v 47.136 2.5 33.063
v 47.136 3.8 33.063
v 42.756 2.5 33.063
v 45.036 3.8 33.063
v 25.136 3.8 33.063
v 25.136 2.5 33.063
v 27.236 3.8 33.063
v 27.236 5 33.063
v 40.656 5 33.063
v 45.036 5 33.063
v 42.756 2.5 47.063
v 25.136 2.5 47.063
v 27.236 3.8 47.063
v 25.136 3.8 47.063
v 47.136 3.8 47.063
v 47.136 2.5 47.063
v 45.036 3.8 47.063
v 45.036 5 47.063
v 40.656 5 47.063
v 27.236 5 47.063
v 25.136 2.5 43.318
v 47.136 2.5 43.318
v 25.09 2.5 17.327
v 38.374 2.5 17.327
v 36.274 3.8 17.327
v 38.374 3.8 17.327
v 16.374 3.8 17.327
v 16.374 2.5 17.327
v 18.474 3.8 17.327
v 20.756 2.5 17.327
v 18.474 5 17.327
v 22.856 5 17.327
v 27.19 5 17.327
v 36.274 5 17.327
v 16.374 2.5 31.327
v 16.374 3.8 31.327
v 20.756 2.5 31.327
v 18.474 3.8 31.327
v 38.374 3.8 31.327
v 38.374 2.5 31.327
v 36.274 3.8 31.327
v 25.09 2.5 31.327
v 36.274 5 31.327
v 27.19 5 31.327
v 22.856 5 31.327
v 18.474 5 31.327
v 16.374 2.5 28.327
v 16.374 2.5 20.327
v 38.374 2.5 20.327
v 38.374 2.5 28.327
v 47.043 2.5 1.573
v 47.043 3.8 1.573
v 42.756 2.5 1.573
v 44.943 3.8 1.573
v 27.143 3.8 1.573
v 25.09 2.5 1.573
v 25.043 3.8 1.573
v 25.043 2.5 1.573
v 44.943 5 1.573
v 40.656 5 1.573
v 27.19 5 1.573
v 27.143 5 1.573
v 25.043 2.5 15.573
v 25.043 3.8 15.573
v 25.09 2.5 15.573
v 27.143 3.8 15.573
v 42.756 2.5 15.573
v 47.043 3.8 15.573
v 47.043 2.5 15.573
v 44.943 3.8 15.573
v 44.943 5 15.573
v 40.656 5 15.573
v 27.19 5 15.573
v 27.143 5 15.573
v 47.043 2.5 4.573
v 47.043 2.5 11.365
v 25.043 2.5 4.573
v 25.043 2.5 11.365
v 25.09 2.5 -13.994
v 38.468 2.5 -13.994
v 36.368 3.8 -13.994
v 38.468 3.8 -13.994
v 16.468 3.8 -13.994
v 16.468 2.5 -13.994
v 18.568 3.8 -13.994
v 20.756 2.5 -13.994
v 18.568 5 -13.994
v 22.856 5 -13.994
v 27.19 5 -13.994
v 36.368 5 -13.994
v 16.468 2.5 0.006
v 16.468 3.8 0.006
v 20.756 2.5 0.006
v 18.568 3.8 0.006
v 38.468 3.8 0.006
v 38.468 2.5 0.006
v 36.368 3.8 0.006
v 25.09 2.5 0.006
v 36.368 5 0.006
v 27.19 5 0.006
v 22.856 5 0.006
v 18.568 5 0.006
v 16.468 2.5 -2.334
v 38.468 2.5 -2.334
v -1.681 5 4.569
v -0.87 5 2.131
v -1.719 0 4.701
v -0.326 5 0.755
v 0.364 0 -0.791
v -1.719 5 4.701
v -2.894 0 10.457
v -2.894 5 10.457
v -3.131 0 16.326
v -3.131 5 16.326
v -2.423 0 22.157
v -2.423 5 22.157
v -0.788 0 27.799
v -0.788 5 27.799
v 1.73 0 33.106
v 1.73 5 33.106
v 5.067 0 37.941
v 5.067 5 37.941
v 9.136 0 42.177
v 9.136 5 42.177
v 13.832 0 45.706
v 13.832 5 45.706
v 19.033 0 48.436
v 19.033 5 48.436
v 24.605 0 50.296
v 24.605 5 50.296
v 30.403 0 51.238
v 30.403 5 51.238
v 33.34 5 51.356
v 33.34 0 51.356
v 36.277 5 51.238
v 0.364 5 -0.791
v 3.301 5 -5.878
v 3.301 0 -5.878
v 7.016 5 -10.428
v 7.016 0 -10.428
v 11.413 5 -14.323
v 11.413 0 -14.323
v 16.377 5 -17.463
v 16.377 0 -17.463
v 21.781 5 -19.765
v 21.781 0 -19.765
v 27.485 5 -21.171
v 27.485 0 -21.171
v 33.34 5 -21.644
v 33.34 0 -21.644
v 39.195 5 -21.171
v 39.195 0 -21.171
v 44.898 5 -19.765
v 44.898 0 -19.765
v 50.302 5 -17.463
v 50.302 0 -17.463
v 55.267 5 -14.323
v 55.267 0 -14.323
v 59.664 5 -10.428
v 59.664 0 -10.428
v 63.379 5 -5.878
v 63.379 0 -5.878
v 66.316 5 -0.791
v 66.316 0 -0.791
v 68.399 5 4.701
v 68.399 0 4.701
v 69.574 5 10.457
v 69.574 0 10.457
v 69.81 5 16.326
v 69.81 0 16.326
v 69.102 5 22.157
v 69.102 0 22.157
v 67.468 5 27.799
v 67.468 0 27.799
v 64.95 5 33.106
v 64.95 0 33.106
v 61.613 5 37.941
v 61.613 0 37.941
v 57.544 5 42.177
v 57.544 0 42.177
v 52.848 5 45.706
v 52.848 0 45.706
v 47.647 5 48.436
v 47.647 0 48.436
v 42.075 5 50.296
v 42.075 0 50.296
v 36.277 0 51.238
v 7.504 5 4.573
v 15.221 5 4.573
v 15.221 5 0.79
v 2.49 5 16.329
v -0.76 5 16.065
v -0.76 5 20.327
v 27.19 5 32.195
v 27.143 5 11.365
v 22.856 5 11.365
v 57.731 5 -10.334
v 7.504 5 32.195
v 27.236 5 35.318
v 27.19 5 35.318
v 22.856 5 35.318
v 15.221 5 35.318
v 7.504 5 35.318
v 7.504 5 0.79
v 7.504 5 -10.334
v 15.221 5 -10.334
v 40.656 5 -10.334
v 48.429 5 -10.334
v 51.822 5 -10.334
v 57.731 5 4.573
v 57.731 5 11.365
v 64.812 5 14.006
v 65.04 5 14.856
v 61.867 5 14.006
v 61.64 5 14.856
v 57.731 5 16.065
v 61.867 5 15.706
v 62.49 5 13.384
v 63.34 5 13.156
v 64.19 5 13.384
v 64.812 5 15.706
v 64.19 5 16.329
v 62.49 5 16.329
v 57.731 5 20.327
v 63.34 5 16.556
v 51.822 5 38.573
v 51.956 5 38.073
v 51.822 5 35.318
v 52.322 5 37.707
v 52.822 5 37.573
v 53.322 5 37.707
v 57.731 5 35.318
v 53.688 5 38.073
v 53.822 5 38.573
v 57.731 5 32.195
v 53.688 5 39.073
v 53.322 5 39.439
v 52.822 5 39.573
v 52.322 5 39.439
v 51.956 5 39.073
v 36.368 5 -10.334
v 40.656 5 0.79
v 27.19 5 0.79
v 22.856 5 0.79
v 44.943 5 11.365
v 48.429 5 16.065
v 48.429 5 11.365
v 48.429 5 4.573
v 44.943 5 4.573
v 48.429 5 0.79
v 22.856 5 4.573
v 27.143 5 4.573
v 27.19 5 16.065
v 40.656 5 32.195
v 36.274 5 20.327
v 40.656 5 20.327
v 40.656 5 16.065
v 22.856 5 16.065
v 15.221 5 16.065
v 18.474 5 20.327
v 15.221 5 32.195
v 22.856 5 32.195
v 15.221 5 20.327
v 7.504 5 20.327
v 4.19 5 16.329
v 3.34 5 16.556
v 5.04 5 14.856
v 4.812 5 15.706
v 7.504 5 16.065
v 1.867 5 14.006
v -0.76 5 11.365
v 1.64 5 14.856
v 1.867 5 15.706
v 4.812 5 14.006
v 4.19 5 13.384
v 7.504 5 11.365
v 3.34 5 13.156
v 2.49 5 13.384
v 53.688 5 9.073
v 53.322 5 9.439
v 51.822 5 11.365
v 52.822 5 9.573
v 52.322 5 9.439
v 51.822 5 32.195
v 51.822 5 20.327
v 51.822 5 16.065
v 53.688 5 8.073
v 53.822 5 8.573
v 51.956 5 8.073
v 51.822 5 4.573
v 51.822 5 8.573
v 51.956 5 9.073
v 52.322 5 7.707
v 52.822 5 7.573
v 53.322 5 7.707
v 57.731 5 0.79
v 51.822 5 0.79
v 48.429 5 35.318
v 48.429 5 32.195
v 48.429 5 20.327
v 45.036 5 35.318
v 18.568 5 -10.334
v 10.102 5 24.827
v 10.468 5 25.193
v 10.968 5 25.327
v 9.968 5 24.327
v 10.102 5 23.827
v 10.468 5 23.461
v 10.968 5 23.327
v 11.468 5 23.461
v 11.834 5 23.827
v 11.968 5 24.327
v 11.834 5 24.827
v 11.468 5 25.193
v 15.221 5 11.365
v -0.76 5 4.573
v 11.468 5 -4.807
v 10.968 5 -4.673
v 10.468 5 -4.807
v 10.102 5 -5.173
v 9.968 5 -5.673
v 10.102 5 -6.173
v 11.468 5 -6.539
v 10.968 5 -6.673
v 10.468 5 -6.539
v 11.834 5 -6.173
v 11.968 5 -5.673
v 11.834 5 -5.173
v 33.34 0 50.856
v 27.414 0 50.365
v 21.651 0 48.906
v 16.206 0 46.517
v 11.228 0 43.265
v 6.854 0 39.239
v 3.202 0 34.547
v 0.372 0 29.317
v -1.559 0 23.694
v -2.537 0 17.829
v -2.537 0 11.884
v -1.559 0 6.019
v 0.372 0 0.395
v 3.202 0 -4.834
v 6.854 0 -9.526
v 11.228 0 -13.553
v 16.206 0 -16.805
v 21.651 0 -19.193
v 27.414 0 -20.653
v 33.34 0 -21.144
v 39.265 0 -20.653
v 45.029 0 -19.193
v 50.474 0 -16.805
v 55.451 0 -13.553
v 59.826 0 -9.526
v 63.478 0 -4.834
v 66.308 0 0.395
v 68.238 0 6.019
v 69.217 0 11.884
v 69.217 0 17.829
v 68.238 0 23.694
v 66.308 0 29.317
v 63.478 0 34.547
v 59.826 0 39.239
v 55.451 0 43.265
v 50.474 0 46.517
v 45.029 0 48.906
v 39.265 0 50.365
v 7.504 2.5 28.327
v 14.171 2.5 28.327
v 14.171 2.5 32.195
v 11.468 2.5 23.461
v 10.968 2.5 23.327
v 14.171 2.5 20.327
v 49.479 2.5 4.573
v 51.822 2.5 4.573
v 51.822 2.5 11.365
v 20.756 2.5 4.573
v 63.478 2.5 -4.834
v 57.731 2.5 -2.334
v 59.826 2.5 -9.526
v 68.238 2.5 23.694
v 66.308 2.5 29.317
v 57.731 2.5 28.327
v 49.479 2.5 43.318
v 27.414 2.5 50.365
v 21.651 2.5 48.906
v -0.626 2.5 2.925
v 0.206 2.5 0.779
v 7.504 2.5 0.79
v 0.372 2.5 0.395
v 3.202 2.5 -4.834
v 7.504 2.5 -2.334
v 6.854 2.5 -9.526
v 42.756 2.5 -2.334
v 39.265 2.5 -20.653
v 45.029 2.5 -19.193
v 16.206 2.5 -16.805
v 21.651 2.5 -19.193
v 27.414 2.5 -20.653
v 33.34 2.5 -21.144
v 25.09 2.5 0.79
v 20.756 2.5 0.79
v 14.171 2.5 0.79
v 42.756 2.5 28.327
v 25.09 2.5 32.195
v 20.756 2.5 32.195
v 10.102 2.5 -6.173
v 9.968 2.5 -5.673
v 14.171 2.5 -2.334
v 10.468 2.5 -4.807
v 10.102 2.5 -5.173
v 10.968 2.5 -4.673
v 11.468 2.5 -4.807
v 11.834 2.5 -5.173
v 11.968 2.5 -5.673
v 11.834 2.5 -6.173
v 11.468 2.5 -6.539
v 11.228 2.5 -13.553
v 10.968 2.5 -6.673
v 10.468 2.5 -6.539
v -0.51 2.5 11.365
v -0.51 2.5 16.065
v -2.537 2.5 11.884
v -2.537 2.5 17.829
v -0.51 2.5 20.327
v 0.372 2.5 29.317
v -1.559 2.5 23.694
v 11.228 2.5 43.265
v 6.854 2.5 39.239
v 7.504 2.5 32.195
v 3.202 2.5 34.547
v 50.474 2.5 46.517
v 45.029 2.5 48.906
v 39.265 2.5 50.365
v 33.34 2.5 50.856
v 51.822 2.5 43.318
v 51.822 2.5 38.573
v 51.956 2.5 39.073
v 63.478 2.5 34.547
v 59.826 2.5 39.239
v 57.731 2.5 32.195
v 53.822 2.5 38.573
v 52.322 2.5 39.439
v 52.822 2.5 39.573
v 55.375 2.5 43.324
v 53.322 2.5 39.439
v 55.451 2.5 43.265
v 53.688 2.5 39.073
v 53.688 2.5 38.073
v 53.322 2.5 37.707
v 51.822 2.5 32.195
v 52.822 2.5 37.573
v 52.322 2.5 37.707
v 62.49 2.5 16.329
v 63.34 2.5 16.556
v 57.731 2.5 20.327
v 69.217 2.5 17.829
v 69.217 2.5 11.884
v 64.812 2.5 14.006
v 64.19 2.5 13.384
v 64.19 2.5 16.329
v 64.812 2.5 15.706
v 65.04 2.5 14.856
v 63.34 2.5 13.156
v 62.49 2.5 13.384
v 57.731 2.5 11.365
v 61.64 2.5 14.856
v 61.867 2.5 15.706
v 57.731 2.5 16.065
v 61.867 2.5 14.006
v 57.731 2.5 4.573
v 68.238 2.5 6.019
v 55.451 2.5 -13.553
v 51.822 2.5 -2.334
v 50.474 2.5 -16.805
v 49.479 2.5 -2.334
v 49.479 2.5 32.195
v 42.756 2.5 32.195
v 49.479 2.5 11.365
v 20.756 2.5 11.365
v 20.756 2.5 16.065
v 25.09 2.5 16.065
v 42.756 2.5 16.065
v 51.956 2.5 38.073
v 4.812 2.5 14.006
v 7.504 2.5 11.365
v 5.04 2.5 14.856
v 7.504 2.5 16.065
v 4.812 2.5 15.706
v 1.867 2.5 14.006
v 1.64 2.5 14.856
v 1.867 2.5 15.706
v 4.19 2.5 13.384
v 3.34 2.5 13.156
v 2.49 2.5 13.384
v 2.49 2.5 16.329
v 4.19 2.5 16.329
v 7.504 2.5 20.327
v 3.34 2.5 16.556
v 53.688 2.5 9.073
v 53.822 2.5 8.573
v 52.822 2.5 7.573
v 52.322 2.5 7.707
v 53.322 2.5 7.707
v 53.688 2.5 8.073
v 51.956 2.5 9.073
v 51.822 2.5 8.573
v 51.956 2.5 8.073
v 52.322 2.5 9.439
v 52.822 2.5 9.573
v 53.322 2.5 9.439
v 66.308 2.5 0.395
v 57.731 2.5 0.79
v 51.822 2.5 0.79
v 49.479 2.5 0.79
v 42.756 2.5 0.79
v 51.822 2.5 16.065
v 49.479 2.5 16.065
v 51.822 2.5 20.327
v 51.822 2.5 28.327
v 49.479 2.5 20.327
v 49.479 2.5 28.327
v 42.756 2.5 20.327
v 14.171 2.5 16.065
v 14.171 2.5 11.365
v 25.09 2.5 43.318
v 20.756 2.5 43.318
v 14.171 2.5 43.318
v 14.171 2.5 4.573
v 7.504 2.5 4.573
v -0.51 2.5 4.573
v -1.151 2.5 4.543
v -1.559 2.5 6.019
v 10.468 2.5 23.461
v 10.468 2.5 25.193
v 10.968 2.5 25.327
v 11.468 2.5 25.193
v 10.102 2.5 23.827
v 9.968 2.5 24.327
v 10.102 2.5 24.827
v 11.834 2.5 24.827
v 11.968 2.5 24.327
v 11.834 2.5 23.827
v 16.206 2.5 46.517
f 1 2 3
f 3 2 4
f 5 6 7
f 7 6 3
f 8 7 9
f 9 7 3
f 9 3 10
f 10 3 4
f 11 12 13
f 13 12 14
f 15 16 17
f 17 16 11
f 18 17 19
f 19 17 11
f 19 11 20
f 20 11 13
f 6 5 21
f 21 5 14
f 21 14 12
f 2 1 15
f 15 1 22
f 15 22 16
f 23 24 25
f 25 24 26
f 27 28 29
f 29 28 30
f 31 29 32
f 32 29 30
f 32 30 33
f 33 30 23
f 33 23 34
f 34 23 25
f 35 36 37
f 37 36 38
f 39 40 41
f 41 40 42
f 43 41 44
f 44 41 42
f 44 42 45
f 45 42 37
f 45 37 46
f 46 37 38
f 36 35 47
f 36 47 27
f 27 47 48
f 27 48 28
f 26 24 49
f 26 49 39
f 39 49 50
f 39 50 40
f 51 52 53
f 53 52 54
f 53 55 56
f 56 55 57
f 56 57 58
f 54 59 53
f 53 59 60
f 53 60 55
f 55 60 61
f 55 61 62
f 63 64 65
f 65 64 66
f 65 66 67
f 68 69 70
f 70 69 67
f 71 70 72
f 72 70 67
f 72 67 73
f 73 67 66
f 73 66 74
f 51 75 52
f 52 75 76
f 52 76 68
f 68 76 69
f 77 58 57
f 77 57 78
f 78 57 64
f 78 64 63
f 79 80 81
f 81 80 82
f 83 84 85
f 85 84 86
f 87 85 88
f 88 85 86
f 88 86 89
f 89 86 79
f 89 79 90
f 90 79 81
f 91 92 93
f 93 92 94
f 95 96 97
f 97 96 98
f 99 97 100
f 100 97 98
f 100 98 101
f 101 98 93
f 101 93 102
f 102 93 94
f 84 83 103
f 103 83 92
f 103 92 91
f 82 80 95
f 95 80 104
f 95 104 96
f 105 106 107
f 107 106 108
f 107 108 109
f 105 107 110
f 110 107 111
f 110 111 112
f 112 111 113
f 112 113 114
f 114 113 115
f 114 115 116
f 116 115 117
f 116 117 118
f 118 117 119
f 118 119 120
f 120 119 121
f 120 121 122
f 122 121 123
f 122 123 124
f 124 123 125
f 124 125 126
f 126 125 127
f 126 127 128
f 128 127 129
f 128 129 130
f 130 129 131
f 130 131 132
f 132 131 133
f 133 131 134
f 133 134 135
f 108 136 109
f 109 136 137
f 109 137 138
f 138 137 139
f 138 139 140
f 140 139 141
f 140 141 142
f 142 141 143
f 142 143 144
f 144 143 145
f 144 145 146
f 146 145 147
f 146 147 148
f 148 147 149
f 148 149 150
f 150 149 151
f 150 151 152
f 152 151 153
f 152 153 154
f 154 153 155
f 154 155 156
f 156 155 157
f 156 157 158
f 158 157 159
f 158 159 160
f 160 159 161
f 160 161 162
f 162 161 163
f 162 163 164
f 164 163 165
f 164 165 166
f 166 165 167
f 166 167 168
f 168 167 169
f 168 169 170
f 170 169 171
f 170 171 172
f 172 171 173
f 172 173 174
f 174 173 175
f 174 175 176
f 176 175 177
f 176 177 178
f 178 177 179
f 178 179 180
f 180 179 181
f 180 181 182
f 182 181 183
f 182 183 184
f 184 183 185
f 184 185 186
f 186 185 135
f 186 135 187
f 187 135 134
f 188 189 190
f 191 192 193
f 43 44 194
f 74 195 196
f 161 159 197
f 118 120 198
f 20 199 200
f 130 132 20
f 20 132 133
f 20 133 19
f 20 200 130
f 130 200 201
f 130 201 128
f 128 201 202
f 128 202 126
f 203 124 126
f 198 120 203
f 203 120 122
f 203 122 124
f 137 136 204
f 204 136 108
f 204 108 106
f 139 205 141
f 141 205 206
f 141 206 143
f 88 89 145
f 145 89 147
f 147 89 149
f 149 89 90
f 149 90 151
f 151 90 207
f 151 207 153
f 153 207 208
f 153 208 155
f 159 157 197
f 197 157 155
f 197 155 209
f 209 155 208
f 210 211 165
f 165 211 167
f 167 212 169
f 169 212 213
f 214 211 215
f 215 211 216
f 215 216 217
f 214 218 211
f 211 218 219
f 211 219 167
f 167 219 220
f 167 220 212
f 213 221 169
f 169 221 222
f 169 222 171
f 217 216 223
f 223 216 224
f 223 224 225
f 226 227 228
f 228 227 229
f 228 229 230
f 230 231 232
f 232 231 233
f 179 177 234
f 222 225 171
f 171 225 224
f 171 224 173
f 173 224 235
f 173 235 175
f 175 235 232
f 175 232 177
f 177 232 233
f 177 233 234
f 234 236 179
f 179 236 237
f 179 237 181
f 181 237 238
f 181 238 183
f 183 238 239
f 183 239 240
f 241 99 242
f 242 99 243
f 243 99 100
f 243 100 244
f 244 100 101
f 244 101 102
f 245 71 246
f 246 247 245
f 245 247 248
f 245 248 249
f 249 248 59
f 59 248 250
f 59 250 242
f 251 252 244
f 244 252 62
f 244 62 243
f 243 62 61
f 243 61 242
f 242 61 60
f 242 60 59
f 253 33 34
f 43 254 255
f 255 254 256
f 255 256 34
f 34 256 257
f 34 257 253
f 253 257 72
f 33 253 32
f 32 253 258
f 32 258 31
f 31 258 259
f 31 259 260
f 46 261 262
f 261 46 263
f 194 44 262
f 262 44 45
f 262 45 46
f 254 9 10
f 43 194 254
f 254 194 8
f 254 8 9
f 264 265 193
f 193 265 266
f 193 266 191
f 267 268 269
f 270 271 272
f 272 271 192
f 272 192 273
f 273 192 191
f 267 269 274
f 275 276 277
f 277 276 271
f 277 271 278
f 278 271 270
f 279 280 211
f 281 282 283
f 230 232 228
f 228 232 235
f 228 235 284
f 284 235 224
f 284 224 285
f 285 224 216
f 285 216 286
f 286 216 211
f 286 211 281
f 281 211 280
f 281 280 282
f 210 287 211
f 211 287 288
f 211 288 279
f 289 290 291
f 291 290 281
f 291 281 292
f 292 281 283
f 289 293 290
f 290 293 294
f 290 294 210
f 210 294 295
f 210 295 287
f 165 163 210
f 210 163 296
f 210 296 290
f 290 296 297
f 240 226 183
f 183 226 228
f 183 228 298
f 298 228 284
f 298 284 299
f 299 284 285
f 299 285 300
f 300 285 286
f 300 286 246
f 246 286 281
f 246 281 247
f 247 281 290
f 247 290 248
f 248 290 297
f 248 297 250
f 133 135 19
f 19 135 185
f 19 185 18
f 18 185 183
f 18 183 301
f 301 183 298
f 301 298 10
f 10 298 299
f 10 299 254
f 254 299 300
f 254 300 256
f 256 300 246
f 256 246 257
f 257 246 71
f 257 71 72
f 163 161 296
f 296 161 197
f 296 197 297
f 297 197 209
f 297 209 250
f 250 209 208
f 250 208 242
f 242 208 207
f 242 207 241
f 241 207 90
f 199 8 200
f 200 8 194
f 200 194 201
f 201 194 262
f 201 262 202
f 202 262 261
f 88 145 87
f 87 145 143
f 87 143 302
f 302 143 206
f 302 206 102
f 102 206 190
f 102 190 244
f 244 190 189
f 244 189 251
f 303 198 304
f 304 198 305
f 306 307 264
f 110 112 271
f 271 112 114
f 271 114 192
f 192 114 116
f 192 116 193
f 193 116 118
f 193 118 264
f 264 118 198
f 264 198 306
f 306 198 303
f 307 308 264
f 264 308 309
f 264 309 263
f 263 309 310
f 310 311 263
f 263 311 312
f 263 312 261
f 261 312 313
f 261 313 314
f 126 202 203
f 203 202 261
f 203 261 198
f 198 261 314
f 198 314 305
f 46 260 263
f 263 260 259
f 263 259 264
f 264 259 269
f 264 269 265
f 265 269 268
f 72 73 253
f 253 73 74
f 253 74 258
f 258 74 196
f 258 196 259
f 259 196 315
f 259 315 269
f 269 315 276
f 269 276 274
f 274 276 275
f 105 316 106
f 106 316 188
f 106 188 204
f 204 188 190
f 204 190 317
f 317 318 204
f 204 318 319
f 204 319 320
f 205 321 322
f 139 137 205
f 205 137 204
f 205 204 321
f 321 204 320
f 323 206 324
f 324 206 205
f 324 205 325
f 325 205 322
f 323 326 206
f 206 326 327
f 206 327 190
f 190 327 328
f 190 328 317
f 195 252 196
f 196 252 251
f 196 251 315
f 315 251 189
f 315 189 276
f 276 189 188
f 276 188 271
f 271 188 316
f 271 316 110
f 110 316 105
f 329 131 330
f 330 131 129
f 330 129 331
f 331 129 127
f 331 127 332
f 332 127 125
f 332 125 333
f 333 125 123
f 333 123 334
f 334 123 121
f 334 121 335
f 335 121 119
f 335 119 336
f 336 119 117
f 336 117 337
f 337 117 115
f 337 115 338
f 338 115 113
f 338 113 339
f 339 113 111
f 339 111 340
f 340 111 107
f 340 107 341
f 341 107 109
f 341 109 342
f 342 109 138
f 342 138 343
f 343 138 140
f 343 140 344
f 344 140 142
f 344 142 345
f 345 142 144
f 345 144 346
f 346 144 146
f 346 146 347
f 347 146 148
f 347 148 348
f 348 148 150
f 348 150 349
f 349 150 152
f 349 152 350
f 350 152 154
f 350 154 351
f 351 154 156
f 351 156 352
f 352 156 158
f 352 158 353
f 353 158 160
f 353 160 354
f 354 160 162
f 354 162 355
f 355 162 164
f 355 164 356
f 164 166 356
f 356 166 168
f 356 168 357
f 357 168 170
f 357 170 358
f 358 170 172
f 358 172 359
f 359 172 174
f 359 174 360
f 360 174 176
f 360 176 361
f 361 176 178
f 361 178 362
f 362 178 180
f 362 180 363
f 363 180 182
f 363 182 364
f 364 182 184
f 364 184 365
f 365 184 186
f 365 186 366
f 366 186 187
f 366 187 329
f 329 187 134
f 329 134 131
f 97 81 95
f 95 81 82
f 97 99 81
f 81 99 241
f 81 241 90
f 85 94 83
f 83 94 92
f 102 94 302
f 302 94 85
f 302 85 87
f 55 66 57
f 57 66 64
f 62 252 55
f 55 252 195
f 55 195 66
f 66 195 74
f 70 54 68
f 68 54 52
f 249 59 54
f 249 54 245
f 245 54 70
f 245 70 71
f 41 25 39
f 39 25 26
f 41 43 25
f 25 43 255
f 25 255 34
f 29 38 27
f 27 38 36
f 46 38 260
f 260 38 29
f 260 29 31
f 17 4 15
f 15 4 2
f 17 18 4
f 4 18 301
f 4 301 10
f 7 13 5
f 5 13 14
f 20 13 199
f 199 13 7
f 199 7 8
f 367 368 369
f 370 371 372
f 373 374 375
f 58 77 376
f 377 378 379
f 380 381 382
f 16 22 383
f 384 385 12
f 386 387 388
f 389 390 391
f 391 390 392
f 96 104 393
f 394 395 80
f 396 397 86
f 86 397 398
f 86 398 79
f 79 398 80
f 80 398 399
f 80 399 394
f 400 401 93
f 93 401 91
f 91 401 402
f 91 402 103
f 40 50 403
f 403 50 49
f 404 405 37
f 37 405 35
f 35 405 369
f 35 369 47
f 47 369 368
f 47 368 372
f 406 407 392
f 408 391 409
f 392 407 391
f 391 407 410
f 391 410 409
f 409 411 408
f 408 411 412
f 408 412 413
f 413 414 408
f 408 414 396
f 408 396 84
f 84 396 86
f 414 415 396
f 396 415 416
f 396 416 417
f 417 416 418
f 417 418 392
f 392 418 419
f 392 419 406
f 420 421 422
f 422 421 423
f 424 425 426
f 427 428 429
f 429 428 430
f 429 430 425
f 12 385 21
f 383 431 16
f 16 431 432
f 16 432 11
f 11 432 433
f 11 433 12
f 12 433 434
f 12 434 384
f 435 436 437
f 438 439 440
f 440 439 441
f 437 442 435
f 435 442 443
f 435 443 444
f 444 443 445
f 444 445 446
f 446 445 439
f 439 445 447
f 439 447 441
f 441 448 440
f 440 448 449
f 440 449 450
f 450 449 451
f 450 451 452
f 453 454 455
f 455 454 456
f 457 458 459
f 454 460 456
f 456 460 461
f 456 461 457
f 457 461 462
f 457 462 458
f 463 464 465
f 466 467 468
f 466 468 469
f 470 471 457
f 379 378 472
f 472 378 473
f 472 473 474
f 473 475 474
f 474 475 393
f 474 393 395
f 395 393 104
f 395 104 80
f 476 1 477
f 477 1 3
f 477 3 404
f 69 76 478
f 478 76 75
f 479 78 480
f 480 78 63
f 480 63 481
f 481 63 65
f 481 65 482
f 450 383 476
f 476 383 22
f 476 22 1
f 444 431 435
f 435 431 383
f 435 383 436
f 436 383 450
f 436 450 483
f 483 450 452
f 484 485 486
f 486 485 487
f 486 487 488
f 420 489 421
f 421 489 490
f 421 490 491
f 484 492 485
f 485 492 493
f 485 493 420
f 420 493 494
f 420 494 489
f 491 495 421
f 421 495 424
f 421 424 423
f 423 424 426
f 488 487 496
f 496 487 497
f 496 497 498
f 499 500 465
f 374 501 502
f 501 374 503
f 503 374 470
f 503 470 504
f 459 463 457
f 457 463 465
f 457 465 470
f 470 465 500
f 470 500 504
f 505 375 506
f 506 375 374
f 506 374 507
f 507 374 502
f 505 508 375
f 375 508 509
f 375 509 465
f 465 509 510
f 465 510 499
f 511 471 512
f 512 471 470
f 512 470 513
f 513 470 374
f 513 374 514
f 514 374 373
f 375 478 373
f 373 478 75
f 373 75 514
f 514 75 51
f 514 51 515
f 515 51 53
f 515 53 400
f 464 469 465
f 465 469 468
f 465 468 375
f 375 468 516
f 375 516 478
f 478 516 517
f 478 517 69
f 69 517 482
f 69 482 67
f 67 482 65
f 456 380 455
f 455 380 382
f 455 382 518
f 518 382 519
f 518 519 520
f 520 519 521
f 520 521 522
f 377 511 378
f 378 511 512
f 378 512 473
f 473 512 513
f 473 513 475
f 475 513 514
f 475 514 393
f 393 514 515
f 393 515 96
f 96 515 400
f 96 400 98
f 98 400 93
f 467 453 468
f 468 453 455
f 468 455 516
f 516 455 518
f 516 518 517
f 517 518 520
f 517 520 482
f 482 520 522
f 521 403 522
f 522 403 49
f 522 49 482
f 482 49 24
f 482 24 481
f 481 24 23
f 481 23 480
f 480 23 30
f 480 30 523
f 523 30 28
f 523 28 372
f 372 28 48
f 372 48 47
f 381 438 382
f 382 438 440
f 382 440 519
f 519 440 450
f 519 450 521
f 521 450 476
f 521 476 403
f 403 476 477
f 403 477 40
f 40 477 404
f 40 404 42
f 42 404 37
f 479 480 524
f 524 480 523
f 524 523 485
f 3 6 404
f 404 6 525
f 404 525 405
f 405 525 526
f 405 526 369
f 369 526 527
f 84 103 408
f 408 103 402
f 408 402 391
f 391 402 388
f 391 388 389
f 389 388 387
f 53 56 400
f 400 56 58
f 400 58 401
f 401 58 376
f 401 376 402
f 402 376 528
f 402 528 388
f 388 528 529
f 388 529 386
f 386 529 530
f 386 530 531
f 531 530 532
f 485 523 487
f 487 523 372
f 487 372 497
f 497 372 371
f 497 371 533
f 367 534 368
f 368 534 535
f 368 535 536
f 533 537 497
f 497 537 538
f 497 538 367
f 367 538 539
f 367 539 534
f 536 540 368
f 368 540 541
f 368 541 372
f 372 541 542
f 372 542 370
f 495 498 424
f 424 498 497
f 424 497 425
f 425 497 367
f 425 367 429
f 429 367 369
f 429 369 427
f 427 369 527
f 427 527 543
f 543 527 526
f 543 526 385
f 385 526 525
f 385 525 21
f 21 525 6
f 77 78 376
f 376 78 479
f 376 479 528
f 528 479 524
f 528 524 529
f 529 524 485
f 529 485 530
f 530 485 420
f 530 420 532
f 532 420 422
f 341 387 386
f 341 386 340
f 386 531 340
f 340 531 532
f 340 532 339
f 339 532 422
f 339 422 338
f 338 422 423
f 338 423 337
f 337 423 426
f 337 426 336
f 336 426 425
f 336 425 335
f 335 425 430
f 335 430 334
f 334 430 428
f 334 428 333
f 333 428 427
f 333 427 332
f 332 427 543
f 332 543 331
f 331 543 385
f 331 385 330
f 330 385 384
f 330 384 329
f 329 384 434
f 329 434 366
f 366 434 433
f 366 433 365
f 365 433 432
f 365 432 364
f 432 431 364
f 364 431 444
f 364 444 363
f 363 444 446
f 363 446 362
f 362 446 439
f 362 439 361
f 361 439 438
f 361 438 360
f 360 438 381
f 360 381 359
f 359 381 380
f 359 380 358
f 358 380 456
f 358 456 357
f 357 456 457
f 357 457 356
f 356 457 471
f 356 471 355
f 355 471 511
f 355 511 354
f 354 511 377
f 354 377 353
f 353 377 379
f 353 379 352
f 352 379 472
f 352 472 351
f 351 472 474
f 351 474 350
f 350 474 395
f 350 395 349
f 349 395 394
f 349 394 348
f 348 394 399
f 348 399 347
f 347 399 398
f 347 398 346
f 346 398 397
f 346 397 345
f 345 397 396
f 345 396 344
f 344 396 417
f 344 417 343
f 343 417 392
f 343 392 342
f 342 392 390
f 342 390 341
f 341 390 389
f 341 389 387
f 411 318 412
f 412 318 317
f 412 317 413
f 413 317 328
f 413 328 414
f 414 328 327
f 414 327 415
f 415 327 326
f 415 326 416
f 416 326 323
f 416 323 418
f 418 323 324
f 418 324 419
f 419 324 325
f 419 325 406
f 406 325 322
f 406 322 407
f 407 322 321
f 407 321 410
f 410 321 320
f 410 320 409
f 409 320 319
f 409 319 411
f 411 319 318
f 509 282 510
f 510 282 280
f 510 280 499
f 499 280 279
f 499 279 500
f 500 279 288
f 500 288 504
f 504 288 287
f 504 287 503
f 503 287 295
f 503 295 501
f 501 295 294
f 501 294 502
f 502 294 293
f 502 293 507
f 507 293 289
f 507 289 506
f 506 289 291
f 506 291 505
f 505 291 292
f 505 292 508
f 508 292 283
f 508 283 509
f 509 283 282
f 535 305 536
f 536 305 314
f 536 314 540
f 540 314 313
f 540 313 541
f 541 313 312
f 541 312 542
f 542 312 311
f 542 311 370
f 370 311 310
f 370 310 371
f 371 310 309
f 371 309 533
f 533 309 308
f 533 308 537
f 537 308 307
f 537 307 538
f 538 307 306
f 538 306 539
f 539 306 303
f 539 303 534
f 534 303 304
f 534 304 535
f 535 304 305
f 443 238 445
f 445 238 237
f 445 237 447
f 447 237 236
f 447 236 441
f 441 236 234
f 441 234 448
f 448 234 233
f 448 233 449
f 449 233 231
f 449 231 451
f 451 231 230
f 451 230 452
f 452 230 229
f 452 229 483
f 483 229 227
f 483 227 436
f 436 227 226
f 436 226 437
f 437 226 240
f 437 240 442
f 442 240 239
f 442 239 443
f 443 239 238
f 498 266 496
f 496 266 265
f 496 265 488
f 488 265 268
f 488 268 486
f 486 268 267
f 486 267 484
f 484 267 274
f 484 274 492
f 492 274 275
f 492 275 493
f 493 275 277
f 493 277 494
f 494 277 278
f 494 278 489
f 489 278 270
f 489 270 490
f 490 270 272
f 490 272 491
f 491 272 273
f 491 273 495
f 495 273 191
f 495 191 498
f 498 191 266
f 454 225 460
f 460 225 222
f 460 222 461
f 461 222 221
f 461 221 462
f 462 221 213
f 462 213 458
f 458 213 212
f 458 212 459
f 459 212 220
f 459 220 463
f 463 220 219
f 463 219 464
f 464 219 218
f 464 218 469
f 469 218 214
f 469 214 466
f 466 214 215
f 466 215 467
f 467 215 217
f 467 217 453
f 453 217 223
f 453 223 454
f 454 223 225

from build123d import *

# Parameters (mm, degrees)
SKETCH1_R            = 36.5
BOSS_EXTRUDE1_DEPTH  = 5
SKETCH2_W            = 22
SKETCH2_H            = 14
CUT_EXTRUDE1_DEPTH   = 2.5
SKETCH6_W            = 14
SKETCH6_H            = 1.2
BOSS_EXTRUDE2_DEPTH  = 2.1
SKETCH7_W            = 14
SKETCH7_H            = 1.2
BOSS_EXTRUDE3_DEPTH  = 2.1
SKETCH8_W            = 14
SKETCH8_H            = 1.2
BOSS_EXTRUDE4_DEPTH  = 2.1
SKETCH10_W           = 14
SKETCH10_H           = 1.2
BOSS_EXTRUDE10_DEPTH = 2.1
SKETCH21_W           = 14
SKETCH21_H           = 1.2
BOSS_EXTRUDE11_DEPTH = 2.1
SKETCH13_W           = 14
SKETCH13_H           = 1.2
BOSS_EXTRUDE7_DEPTH  = 2.1
SKETCH14_W           = 14
SKETCH14_H           = 1.2
BOSS_EXTRUDE8_DEPTH  = 2.1
SKETCH18_W           = 14
SKETCH18_H           = 1.2
BOSS_EXTRUDE9_DEPTH  = 2.1
SKETCH20_R           = 36
CUT_EXTRUDE3_DEPTH   = 2.5
SKETCH22_R           = 1
CUT_EXTRUDE4_DEPTH   = 10
SKETCH24_R           = 1.7
CUT_EXTRUDE5_DEPTH   = 87.833561687


with BuildPart() as part:
    # Sketch1 → Boss-Extrude1 (new body)
    with BuildSketch(Plane(origin=(0, 0, 0), x_dir=(1, 0, 0), z_dir=(0, 1, 0))):
        with Locations(Location((33.33972472, -14.85640453, 0), (0, 0, 270))):
            Circle(SKETCH1_R)
    extrude(amount=BOSS_EXTRUDE1_DEPTH)

    # Sketch2 → Cut-Extrude1 (cut)
    with BuildSketch(Plane(origin=(0, 5, 0), x_dir=(1, 0, 0), z_dir=(0, 1, 0))):
        with Locations((36.135698514, -40.062546055)):
            Rectangle(SKETCH2_W, SKETCH2_H)
        with Locations((27.374405596, -24.326629568)):
            Rectangle(SKETCH2_W, SKETCH2_H)
        with Locations((27.467621635, 6.993959585)):
            Rectangle(SKETCH2_W, SKETCH2_H)
        with Locations((36.043497237, -8.573118952)):
            Rectangle(SKETCH2_W, SKETCH2_H)
    extrude(amount=-CUT_EXTRUDE1_DEPTH, mode=Mode.SUBTRACT)

    # Sketch6 → Boss-Extrude2 (add)
    with BuildSketch(Plane.ZY.offset(-38.467621635)):
        with Locations((-6.993959585, 4.4)):
            Rectangle(SKETCH6_W, SKETCH6_H)
    extrude(amount=BOSS_EXTRUDE2_DEPTH)

    # Sketch7 → Boss-Extrude3 (add)
    with BuildSketch(Plane(origin=(16.467621635, 0, 0), x_dir=(0, 0, -1), z_dir=(1, 0, 0))):
        with Locations((6.993959585, 4.4)):
            Rectangle(SKETCH7_W, SKETCH7_H)
    extrude(amount=BOSS_EXTRUDE3_DEPTH)

    # Sketch8 → Boss-Extrude4 (add)
    with BuildSketch(Plane(origin=(25.043497237, 0, 0), x_dir=(0, 0, -1), z_dir=(1, 0, 0))):
        with Locations((-8.573118952, 4.4)):
            Rectangle(SKETCH8_W, SKETCH8_H)
    extrude(amount=BOSS_EXTRUDE4_DEPTH)

    # Sketch10 → Boss-Extrude10 (add)
    with BuildSketch(Plane.ZY.offset(-47.043497237)):
        with Locations((8.573118952, 4.4)):
            Rectangle(SKETCH10_W, SKETCH10_H)
    extrude(amount=BOSS_EXTRUDE10_DEPTH)

    # Sketch21 → Boss-Extrude11 (add)
    with BuildSketch(Plane.ZY.offset(-38.374405596)):
        with Locations((24.326629568, 4.4)):
            Rectangle(SKETCH21_W, SKETCH21_H)
    extrude(amount=BOSS_EXTRUDE11_DEPTH)

    # Sketch13 → Boss-Extrude7 (add)
    with BuildSketch(Plane(origin=(16.374405596, 0, 0), x_dir=(0, 0, -1), z_dir=(1, 0, 0))):
        with Locations((-24.326629568, 4.4)):
            Rectangle(SKETCH13_W, SKETCH13_H)
    extrude(amount=BOSS_EXTRUDE7_DEPTH)

    # Sketch14 → Boss-Extrude8 (add)
    with BuildSketch(Plane.ZY.offset(-47.135698514)):
        with Locations((40.062546055, 4.4)):
            Rectangle(SKETCH14_W, SKETCH14_H)
    extrude(amount=BOSS_EXTRUDE8_DEPTH)

    # Sketch18 → Boss-Extrude9 (add)
    with BuildSketch(Plane(origin=(25.135698514, 0, 0), x_dir=(0, 0, -1), z_dir=(1, 0, 0))):
        with Locations((-40.062546055, 4.4)):
            Rectangle(SKETCH18_W, SKETCH18_H)
    extrude(amount=BOSS_EXTRUDE9_DEPTH)

    # Sketch20 → Cut-Extrude3 (cut)
    with BuildSketch(Plane.XZ):
        with Locations(Location((33.33972472, 14.85640453, 0), (0, 0, 270))):
            Circle(SKETCH20_R)
    extrude(amount=-CUT_EXTRUDE3_DEPTH, mode=Mode.SUBTRACT)

    # Sketch22 → Cut-Extrude4 (cut)
    with BuildSketch(Plane(origin=(0, 5, 0), x_dir=(1, 0, 0), z_dir=(0, 1, 0))):
        with Locations(Location((52.821638574, -38.573118952, 0), (0, 0, 270))):
            Circle(SKETCH22_R)
        with Locations(Location((10.967875326, -24.326629568, 0), (0, 0, 270))):
            Circle(SKETCH22_R)
        with Locations(Location((10.967875326, 5.673370432, 0), (0, 0, 270))):
            Circle(SKETCH22_R)
        with Locations(Location((52.821876902, -8.573118953, 0), (0, 0, 270))):
            Circle(SKETCH22_R)
    extrude(amount=-CUT_EXTRUDE4_DEPTH, mode=Mode.SUBTRACT)

    # Sketch24 → Cut-Extrude5 (cut, through all)
    with BuildSketch(Plane(origin=(0, 5, 0), x_dir=(1, 0, 0), z_dir=(0, 1, 0))):
        with Locations(Location((63.33972472, -14.85640453, 0), (0, 0, 270))):
            Circle(SKETCH24_R)
        with Locations(Location((3.33972472, -14.85640453, 0), (0, 0, 270))):
            Circle(SKETCH24_R)
    extrude(amount=-CUT_EXTRUDE5_DEPTH, mode=Mode.SUBTRACT)


solid = part.part
